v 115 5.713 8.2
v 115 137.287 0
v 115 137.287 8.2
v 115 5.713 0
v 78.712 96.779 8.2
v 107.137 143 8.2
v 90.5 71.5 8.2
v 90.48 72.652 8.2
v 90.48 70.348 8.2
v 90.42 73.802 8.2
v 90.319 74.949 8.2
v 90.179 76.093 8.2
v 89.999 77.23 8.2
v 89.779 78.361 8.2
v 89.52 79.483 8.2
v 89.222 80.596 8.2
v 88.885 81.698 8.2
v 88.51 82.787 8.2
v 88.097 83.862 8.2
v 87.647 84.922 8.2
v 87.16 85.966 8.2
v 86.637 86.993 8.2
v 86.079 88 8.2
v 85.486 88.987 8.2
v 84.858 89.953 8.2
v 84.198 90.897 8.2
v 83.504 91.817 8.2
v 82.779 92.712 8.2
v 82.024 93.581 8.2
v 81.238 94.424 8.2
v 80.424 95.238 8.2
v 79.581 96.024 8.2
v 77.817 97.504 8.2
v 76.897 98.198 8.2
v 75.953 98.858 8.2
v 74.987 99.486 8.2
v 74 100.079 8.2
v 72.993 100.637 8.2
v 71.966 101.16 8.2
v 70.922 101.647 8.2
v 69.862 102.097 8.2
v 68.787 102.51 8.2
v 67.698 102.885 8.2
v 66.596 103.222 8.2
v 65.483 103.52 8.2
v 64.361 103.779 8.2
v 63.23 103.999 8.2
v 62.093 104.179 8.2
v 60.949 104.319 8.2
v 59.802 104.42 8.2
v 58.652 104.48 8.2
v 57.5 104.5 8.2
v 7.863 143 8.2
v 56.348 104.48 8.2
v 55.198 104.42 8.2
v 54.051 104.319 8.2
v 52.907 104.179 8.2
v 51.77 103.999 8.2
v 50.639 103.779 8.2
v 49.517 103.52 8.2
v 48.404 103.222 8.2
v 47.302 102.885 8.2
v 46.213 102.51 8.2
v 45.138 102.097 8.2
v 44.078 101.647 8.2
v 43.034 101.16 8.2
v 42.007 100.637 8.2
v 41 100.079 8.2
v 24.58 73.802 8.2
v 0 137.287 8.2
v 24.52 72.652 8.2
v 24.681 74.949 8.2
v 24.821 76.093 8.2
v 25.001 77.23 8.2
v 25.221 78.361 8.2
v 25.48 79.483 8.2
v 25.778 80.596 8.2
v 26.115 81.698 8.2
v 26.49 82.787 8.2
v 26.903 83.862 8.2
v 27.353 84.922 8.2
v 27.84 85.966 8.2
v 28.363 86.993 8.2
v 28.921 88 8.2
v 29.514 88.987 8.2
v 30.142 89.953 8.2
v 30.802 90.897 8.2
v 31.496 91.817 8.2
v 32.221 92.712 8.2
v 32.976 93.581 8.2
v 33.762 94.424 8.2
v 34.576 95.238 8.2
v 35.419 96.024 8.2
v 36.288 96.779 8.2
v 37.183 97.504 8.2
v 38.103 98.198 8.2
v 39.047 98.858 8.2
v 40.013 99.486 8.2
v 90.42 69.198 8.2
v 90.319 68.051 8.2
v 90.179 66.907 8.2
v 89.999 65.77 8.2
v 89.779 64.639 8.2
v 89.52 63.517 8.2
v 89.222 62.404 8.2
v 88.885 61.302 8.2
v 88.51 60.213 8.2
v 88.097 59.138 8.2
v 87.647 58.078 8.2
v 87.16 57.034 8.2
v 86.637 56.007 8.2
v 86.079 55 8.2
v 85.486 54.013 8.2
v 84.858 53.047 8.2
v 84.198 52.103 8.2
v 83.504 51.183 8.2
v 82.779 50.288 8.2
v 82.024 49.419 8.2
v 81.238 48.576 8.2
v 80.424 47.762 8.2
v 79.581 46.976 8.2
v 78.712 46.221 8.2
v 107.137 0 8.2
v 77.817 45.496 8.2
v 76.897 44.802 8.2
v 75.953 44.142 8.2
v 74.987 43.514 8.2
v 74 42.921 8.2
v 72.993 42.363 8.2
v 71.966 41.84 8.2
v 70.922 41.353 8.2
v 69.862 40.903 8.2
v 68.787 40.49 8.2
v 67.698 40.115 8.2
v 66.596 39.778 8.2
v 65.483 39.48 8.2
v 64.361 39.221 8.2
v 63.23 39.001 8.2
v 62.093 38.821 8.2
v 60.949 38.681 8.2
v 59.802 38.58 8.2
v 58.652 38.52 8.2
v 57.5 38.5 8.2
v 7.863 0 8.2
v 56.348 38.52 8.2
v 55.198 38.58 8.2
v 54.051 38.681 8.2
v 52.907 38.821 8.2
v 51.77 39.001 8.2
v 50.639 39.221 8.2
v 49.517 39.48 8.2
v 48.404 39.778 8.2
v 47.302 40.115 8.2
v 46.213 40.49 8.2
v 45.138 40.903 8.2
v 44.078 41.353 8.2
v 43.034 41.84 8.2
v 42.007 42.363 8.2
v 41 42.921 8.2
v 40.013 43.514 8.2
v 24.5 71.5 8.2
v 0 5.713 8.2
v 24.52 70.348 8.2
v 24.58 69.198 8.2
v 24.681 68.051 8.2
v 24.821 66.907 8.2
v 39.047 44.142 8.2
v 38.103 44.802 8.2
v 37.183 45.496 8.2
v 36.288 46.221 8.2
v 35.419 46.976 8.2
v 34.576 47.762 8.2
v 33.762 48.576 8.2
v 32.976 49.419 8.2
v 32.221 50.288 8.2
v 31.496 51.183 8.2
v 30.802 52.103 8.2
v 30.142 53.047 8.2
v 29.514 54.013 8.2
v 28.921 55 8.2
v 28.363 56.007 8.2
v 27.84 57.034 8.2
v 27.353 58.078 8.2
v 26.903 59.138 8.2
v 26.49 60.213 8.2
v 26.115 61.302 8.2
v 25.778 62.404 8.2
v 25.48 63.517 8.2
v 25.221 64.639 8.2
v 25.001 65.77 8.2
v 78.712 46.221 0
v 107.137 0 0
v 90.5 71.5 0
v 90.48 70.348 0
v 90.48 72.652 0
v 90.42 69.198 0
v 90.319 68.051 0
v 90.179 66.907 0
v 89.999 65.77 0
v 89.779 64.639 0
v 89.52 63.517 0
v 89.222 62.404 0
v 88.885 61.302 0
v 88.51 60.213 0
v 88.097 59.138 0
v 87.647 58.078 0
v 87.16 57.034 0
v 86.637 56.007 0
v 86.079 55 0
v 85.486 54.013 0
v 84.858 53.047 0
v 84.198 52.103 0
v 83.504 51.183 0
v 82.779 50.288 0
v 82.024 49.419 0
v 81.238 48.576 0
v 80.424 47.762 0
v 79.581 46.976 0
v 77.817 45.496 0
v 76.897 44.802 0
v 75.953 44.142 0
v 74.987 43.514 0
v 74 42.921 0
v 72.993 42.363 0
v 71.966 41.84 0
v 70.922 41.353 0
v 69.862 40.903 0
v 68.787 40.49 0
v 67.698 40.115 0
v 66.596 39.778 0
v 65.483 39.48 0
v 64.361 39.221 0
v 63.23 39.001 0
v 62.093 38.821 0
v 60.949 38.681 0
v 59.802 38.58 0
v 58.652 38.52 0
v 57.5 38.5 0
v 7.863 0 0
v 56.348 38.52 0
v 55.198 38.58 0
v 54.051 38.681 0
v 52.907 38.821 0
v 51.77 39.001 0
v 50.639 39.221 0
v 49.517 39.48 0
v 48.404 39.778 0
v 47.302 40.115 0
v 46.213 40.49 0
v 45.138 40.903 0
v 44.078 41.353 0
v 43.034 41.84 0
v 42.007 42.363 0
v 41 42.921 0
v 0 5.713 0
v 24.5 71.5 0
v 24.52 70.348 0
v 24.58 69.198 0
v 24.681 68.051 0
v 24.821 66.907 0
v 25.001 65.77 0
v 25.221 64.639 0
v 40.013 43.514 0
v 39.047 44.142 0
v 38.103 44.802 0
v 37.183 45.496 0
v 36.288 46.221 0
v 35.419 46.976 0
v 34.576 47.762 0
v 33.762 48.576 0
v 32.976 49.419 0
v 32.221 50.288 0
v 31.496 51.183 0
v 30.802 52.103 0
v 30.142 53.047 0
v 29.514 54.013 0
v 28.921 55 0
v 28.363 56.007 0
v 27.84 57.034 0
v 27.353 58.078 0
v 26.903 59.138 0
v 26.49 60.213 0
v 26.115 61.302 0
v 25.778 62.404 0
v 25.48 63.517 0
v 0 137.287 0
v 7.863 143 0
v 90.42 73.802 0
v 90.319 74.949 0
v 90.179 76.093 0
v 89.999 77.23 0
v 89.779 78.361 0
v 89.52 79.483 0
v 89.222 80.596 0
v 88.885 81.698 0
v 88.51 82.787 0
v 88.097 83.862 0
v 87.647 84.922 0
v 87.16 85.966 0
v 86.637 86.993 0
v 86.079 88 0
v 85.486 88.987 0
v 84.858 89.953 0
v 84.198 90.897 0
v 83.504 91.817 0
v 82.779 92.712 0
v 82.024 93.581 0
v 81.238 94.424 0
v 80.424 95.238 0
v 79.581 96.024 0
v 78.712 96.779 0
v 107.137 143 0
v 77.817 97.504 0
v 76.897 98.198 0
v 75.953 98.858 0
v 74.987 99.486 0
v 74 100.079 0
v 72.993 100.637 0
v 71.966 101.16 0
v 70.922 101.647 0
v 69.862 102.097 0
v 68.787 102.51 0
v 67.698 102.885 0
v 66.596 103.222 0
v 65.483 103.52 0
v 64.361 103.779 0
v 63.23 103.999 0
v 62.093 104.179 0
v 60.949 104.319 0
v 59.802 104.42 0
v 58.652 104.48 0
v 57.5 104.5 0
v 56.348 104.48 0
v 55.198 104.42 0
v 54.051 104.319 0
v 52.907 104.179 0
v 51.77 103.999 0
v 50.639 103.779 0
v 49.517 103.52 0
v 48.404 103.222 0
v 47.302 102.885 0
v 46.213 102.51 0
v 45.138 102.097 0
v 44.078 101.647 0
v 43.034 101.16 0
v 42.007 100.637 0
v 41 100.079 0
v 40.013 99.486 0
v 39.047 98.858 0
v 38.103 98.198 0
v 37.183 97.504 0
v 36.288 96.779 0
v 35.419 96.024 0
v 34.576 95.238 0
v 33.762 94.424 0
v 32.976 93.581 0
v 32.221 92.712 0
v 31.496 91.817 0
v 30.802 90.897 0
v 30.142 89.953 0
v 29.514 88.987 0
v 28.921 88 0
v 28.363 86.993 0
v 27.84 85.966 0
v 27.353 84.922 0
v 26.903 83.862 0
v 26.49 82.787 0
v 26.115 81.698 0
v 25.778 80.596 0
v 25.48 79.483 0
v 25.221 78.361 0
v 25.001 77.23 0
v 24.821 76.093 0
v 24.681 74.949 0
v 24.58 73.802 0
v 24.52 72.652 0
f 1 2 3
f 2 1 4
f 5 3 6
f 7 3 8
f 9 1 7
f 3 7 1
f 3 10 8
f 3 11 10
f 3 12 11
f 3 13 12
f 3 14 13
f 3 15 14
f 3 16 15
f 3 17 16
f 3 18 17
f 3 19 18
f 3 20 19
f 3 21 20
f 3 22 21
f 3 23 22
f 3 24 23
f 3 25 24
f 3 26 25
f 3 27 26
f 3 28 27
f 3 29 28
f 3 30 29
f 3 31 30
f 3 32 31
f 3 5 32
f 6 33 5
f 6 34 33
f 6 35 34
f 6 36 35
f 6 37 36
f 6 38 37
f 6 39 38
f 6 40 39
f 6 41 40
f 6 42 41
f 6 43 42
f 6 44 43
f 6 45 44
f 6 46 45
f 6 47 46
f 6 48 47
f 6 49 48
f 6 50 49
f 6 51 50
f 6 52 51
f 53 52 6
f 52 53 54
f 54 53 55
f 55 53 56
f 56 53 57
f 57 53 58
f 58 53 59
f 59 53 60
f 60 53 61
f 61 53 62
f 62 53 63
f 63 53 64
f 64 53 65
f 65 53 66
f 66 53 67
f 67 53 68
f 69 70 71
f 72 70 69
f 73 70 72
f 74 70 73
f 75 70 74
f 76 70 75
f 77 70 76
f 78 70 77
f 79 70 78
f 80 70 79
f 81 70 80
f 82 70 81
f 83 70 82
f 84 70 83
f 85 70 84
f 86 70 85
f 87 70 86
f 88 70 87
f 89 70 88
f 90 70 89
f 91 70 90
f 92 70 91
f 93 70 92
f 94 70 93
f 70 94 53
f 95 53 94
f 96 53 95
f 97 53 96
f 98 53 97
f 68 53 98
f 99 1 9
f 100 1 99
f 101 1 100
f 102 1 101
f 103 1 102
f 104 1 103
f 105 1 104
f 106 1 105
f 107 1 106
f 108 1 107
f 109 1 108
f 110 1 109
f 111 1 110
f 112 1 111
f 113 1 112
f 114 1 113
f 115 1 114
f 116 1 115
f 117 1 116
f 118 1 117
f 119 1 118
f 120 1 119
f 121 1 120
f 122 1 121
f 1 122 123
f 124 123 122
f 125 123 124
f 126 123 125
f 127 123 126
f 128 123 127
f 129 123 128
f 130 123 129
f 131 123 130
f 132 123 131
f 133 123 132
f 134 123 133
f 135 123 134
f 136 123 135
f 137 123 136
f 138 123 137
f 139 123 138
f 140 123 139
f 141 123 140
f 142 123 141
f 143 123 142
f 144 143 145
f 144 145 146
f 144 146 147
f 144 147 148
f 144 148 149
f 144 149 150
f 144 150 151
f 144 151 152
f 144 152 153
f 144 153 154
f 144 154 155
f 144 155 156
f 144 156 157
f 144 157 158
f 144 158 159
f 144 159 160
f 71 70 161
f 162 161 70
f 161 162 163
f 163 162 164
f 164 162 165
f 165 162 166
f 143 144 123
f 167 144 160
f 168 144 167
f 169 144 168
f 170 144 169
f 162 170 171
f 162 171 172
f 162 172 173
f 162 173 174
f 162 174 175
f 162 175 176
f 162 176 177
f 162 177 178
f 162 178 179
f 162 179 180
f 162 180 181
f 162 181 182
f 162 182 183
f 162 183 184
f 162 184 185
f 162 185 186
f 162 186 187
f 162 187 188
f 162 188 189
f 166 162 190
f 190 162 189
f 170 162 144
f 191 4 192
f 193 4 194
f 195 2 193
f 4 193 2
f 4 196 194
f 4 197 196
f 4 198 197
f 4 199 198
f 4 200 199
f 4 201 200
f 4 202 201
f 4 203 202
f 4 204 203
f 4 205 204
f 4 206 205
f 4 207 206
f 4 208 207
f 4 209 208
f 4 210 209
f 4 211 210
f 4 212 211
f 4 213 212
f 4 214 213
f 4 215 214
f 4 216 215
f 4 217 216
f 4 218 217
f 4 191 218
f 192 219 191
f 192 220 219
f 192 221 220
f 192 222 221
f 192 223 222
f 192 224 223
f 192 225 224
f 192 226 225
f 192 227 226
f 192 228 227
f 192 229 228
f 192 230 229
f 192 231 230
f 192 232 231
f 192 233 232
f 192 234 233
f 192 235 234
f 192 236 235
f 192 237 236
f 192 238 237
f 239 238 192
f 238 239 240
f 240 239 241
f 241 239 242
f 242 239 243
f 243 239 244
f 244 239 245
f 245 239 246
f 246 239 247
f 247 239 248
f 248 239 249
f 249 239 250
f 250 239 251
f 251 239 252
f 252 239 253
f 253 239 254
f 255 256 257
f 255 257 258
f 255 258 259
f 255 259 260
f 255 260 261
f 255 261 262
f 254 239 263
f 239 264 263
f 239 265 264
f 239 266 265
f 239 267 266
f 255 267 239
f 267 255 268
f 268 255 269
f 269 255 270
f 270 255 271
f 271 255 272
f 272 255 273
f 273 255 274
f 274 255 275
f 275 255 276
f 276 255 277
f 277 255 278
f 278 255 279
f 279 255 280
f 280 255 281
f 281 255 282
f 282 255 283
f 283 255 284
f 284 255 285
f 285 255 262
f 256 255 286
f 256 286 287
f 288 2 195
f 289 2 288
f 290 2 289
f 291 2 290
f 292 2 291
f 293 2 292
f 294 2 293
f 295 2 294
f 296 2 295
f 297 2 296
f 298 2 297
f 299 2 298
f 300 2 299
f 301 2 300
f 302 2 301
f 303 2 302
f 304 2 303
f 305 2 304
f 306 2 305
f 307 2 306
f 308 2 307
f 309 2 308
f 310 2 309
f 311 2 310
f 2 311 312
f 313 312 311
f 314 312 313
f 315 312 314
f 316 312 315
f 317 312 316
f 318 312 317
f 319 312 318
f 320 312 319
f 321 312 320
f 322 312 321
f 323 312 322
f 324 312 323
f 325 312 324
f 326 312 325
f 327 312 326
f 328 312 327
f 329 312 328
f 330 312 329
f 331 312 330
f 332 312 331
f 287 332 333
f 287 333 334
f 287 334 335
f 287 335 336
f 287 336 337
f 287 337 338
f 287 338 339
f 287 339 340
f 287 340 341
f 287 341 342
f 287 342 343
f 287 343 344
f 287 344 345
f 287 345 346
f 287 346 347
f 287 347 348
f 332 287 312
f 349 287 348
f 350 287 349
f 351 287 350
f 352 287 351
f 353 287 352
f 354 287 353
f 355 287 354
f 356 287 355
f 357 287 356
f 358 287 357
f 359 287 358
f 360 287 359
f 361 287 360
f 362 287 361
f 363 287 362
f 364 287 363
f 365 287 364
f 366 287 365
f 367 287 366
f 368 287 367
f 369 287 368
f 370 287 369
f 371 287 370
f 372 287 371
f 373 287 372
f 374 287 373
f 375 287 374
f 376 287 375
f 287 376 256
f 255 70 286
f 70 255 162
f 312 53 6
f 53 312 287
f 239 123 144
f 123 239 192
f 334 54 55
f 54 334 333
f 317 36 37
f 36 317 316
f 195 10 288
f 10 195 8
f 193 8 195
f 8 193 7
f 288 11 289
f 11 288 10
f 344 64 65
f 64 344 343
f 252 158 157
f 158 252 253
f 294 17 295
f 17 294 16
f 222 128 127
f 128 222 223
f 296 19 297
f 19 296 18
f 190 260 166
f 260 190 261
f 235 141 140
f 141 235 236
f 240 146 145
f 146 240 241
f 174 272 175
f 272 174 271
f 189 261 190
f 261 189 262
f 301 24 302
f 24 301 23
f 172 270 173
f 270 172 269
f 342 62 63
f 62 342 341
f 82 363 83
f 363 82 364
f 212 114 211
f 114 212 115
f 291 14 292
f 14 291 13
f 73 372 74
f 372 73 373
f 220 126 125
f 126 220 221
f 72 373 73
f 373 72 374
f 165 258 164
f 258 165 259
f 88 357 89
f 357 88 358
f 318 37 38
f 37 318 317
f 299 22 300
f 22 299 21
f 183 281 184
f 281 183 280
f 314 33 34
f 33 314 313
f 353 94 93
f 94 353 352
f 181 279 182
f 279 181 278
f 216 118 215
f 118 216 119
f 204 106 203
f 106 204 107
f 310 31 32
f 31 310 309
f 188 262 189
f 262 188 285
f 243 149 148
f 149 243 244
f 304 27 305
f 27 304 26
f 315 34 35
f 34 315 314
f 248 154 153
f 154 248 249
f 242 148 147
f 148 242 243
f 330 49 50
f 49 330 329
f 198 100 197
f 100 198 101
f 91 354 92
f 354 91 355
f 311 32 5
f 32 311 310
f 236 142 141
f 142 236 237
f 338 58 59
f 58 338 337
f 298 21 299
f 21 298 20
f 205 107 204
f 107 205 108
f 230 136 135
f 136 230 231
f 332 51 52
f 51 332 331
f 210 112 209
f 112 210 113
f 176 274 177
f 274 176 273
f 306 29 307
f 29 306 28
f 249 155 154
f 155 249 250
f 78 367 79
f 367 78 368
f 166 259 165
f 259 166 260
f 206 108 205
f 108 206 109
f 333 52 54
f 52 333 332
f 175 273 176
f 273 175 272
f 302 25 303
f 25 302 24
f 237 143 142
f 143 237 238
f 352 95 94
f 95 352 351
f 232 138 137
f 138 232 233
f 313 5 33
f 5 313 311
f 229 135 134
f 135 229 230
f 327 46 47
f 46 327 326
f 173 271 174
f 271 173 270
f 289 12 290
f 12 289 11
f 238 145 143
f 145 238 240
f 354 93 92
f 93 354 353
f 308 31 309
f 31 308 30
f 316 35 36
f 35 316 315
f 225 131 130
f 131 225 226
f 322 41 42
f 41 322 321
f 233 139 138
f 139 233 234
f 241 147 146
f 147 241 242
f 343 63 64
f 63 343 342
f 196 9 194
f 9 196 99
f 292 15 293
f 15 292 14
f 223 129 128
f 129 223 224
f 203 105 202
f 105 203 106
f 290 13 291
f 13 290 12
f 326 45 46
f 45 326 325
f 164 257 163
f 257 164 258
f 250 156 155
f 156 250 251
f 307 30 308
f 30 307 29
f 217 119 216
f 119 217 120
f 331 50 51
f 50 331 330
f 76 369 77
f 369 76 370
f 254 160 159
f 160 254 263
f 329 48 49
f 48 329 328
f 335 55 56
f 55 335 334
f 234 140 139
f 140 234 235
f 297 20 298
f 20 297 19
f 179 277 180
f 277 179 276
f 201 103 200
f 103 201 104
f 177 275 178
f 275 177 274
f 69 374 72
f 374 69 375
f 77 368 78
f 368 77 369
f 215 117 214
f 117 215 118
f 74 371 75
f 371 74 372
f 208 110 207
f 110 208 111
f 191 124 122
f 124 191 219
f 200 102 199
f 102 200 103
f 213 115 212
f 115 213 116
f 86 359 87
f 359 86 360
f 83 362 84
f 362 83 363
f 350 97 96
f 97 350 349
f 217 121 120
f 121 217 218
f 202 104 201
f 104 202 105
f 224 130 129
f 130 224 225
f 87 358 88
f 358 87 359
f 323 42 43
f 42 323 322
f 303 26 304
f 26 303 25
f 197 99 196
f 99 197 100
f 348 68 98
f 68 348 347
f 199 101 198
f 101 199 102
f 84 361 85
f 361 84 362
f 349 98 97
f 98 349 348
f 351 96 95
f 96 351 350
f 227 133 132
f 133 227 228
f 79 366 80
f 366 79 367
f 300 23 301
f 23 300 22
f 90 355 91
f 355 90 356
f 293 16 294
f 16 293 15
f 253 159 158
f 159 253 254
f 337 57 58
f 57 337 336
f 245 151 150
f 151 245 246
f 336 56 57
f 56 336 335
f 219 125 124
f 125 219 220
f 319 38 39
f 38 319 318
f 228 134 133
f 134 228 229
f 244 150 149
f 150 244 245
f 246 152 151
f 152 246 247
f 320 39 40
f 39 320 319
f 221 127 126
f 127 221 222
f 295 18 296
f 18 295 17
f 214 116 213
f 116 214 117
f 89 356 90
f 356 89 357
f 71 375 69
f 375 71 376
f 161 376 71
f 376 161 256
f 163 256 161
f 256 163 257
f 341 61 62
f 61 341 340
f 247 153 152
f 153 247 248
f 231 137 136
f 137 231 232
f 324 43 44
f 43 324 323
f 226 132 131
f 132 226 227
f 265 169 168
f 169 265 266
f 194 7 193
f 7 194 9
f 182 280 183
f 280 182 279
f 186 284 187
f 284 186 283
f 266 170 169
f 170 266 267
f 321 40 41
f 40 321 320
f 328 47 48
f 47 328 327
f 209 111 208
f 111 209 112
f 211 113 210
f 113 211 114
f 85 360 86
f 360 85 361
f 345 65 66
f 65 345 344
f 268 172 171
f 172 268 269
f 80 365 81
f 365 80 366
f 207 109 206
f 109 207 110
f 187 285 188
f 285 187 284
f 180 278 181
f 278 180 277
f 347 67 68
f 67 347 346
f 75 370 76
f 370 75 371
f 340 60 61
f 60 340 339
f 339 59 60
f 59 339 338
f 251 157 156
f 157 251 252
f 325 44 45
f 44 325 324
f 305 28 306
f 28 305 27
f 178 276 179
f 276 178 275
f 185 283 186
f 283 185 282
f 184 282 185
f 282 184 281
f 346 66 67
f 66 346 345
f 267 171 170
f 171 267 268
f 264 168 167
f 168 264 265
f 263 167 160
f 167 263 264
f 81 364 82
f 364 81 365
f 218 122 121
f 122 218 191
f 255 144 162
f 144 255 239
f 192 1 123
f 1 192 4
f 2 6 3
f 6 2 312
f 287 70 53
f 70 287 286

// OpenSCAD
TOTAL_LENGTH = 345;
WIDTH        = 143;
THICKNESS    =   8.2;
D            =  66;

LENGTH = TOTAL_LENGTH / 3;
SPACE  = (TOTAL_LENGTH - D*3) / 4;

PLATE_D      = 180;

module stencile(i) {   
    difference() {
        cube([LENGTH, WIDTH, THICKNESS]);
        
        dd = (LENGTH-D)/2;
        translate([i==0 ? LENGTH/2 : i==1 ? D/2-dd+SPACE : LENGTH-D/2+dd-SPACE, WIDTH/2, 0])
        cylinder(d=D, h=THICKNESS*3, center=true, $fn=360/2);
    }
}

module rounded_stencile(i) {
    intersection() {
        stencile(i);
        translate([LENGTH/2, WIDTH/2, 0])
        cylinder(d=PLATE_D-5, h=THICKNESS*3, center=true);
    }
}


module all() {
    for(i=[-1:1]) {
        translate([i*LENGTH + i, 0, 0])
        rounded_stencile(i);
    }
}


//rounded_stencile(-1);
rounded_stencile(0);
//rounded_stencile(1);
